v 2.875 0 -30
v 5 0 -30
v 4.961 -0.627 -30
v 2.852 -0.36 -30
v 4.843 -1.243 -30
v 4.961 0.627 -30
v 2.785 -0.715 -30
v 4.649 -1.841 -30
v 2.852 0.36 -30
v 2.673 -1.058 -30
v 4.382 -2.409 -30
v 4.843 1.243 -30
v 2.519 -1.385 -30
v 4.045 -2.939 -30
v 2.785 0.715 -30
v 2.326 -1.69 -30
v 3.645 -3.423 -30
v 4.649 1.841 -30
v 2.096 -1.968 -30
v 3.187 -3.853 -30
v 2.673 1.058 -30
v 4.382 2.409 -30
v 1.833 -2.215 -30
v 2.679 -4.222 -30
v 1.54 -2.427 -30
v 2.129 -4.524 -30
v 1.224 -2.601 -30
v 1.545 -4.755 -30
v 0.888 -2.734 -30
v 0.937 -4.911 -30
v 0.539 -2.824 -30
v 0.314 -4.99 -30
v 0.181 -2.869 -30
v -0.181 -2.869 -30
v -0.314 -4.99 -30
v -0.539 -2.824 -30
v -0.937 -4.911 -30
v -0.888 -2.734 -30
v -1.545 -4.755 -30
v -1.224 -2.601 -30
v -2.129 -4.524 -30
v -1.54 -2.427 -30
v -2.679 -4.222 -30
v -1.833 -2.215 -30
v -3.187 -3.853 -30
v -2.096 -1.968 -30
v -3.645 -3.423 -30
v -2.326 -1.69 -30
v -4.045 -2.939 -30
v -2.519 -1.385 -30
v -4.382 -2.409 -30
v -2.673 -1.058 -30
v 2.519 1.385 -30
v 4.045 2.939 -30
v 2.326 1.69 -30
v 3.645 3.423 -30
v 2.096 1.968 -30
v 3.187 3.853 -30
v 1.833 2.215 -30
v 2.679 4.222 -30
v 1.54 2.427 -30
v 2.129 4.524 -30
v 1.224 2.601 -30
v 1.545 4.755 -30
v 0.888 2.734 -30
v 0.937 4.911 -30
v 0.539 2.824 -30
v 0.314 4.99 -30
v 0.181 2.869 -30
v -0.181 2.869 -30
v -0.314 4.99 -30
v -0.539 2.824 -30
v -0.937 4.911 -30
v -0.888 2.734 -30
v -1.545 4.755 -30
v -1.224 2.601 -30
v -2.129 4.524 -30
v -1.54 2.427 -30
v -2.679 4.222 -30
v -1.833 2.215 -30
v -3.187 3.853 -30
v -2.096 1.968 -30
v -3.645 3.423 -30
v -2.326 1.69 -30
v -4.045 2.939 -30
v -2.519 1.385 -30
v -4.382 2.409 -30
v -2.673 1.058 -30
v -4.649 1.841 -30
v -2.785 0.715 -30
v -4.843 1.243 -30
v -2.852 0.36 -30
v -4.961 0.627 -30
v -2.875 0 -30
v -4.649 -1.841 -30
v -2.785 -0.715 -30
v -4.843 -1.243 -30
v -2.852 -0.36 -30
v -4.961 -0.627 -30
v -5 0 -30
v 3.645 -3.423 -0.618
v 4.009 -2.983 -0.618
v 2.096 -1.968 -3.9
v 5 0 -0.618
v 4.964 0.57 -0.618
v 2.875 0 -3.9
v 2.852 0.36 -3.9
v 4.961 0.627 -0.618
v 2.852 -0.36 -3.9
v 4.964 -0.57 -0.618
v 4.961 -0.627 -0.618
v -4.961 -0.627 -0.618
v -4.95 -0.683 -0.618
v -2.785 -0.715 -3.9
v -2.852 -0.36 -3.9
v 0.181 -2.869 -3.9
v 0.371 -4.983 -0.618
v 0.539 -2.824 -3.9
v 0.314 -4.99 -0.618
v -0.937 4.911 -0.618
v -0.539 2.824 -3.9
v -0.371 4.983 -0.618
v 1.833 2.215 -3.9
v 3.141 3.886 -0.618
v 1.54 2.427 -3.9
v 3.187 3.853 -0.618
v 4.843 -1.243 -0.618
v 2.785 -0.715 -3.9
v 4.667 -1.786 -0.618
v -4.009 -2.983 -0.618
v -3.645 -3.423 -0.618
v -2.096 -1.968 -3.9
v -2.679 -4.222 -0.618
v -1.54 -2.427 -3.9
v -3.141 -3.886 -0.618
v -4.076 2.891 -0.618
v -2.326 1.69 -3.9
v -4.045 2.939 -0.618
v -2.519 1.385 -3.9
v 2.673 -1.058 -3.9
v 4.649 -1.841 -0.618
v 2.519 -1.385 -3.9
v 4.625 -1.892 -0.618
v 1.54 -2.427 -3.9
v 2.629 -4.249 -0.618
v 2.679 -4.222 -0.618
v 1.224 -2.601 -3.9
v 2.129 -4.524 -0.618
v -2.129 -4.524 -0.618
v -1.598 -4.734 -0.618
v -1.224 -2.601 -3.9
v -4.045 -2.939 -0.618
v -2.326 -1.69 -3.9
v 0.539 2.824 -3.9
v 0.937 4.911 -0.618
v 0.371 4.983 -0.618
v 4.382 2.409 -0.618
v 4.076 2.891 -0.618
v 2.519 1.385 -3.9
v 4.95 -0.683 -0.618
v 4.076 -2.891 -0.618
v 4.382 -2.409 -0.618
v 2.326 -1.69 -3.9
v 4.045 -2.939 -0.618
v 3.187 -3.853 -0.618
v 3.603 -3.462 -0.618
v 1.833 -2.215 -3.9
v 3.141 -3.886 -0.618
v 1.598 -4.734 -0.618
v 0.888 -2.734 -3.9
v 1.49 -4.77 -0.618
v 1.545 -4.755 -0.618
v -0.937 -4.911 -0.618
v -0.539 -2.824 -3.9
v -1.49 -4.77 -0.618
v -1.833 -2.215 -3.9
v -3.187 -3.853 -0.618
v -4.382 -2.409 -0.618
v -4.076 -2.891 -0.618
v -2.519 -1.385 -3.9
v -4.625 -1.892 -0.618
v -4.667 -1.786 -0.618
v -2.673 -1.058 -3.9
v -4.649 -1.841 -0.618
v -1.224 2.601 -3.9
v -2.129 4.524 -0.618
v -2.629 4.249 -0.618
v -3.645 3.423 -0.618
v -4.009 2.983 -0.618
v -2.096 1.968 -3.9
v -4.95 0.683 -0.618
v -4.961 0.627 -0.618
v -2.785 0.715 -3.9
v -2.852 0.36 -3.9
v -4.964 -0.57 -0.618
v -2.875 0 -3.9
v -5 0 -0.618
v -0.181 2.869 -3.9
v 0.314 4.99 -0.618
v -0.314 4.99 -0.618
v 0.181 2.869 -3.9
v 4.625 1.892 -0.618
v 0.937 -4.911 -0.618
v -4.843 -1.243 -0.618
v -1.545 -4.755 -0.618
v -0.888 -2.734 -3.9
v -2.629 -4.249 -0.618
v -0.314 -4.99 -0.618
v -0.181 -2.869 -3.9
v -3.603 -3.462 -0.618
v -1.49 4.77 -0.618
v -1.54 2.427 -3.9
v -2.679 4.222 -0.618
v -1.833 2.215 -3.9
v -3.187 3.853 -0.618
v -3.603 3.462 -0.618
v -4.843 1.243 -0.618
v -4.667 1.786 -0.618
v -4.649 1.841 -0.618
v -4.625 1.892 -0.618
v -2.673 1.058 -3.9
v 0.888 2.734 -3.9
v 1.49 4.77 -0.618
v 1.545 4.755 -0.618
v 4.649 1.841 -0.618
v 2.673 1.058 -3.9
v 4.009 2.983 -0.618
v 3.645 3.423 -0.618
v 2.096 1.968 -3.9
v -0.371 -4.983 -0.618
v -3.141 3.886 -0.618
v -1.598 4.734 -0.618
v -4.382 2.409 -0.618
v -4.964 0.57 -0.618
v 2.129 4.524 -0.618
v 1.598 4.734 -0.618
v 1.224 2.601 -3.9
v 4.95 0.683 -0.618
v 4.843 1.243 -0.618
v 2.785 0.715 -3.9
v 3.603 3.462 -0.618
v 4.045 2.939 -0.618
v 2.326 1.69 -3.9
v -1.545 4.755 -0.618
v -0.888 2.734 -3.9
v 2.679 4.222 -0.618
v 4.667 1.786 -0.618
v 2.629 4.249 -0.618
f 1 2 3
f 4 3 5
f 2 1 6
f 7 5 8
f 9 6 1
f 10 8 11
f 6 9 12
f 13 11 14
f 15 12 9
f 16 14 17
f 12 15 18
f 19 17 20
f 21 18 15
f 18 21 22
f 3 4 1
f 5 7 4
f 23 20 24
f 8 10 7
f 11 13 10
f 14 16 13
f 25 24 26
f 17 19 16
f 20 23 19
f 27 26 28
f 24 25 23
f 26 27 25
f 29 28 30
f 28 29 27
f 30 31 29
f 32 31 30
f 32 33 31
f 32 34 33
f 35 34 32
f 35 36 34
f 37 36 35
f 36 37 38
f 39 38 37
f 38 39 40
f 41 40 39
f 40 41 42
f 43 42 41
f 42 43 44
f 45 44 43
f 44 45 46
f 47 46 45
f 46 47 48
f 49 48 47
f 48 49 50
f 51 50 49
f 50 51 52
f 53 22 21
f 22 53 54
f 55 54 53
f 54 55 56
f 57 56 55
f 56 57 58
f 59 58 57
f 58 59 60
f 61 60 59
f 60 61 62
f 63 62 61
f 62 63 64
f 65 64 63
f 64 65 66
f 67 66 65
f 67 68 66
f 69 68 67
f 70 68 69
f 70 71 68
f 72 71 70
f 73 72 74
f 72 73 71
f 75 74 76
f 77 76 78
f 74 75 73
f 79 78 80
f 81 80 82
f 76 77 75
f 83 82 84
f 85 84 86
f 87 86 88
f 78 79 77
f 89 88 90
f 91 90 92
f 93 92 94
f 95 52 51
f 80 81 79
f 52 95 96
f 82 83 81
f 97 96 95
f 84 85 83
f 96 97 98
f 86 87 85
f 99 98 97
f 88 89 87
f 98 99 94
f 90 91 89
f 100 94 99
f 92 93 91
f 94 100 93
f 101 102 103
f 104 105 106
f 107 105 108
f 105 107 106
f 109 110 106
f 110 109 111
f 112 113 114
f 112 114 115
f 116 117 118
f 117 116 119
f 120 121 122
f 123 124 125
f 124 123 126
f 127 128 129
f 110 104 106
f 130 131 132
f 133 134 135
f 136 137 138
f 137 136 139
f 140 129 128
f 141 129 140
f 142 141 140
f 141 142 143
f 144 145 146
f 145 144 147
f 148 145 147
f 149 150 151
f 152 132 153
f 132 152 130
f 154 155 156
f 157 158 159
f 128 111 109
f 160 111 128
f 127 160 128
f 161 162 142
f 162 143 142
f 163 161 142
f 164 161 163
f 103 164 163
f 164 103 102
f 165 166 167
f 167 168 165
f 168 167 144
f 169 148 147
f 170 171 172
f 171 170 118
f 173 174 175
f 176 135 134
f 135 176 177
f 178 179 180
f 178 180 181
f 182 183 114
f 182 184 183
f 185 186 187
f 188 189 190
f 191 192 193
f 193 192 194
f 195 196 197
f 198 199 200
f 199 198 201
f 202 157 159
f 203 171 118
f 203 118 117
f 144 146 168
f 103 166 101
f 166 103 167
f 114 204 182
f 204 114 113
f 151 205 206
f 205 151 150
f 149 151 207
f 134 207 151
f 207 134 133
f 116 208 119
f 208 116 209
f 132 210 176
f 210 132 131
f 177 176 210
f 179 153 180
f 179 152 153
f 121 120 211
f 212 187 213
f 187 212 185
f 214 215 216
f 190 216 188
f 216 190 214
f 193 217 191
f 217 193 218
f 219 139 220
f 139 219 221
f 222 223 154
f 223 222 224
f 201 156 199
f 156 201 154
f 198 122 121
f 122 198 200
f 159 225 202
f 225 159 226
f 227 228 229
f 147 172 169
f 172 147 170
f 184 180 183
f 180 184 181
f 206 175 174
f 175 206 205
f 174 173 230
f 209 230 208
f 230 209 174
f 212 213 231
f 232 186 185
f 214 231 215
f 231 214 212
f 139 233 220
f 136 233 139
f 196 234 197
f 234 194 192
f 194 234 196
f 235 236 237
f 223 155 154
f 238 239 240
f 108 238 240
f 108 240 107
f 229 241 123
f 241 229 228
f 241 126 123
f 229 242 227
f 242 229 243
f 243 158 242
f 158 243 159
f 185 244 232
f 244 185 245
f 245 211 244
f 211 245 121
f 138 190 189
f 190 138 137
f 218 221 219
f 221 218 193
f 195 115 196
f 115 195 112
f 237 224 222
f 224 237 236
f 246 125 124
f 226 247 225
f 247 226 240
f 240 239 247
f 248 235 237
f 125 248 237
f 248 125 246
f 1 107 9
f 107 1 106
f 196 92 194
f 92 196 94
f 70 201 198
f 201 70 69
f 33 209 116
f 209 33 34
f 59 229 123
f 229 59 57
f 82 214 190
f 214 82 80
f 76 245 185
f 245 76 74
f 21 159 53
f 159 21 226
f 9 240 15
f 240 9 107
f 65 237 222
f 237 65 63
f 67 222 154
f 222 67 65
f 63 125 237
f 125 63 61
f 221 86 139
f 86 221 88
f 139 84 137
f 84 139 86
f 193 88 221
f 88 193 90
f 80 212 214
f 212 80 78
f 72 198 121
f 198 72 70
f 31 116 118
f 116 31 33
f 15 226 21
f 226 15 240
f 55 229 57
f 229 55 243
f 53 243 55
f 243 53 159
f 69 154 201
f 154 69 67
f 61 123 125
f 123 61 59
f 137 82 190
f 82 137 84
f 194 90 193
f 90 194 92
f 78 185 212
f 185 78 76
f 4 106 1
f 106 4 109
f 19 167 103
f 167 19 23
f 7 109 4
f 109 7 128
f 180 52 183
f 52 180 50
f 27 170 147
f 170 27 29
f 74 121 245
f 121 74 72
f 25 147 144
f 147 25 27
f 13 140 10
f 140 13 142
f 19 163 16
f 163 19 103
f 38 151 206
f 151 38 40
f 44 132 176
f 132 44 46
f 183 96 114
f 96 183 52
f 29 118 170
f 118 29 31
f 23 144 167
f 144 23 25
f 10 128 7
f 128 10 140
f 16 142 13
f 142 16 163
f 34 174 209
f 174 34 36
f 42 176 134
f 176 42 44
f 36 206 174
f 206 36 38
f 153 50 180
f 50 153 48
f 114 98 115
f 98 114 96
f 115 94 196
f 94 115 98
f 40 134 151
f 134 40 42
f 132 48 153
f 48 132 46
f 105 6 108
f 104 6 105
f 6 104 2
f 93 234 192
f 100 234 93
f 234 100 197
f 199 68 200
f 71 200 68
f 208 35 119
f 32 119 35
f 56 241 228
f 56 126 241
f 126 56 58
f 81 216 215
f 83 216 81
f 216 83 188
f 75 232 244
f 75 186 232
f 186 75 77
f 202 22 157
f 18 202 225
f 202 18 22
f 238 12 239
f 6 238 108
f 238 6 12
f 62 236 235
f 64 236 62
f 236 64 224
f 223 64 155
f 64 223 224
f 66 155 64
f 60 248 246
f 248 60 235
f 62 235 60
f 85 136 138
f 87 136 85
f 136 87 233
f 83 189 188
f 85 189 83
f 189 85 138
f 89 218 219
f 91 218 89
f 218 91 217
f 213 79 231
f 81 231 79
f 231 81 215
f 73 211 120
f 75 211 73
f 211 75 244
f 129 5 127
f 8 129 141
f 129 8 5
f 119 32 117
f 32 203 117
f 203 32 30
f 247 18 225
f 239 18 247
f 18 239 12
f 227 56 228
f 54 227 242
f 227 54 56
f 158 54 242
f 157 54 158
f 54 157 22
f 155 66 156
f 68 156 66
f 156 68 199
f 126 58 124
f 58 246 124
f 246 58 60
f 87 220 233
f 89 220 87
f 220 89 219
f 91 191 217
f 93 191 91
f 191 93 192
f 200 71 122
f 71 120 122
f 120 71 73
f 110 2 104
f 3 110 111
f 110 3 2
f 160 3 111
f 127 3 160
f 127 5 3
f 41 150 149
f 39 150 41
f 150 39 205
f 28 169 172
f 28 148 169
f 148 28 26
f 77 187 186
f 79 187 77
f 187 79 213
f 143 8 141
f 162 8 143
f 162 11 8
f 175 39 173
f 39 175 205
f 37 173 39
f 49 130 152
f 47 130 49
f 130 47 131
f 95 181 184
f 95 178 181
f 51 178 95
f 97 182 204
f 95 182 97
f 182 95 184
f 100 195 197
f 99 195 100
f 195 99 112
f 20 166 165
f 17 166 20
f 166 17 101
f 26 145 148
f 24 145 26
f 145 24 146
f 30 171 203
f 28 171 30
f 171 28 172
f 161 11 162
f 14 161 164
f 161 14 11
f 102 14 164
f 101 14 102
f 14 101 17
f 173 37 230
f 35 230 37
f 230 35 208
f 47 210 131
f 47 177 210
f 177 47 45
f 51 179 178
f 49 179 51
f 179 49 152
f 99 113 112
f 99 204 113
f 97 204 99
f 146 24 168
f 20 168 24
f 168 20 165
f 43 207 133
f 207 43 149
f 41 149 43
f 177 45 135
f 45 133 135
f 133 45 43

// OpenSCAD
$fn = 50;


difference() {
	union() {
		translate(v = [0, 0, -30.0000000000]) {
			cylinder(h = 30, r = 5.0000000000);
		}
		cylinder(h = 0, r = 8.0000000000);
	}
	union() {
		translate(v = [0, 0, 0]) {
			rotate(a = [0, 0, 0]) {
				difference() {
					union() {
						#translate(v = [0, 0, -30.0000000000]) {
							cylinder(h = 30, r = 2.6000000000);
						}
						#translate(v = [0, 0, -3.9000000000]) {
							cylinder(h = 3.9000000000, r1 = 2.8750000000, r2 = 5.4000000000);
						}
						#translate(v = [0, 0, -30.0000000000]) {
							cylinder(h = 30, r = 2.8750000000);
						}
						#translate(v = [0, 0, -30.0000000000]) {
							cylinder(h = 30, r = 2.6000000000);
						}
					}
					union();
				}
			}
		}
	}
}
